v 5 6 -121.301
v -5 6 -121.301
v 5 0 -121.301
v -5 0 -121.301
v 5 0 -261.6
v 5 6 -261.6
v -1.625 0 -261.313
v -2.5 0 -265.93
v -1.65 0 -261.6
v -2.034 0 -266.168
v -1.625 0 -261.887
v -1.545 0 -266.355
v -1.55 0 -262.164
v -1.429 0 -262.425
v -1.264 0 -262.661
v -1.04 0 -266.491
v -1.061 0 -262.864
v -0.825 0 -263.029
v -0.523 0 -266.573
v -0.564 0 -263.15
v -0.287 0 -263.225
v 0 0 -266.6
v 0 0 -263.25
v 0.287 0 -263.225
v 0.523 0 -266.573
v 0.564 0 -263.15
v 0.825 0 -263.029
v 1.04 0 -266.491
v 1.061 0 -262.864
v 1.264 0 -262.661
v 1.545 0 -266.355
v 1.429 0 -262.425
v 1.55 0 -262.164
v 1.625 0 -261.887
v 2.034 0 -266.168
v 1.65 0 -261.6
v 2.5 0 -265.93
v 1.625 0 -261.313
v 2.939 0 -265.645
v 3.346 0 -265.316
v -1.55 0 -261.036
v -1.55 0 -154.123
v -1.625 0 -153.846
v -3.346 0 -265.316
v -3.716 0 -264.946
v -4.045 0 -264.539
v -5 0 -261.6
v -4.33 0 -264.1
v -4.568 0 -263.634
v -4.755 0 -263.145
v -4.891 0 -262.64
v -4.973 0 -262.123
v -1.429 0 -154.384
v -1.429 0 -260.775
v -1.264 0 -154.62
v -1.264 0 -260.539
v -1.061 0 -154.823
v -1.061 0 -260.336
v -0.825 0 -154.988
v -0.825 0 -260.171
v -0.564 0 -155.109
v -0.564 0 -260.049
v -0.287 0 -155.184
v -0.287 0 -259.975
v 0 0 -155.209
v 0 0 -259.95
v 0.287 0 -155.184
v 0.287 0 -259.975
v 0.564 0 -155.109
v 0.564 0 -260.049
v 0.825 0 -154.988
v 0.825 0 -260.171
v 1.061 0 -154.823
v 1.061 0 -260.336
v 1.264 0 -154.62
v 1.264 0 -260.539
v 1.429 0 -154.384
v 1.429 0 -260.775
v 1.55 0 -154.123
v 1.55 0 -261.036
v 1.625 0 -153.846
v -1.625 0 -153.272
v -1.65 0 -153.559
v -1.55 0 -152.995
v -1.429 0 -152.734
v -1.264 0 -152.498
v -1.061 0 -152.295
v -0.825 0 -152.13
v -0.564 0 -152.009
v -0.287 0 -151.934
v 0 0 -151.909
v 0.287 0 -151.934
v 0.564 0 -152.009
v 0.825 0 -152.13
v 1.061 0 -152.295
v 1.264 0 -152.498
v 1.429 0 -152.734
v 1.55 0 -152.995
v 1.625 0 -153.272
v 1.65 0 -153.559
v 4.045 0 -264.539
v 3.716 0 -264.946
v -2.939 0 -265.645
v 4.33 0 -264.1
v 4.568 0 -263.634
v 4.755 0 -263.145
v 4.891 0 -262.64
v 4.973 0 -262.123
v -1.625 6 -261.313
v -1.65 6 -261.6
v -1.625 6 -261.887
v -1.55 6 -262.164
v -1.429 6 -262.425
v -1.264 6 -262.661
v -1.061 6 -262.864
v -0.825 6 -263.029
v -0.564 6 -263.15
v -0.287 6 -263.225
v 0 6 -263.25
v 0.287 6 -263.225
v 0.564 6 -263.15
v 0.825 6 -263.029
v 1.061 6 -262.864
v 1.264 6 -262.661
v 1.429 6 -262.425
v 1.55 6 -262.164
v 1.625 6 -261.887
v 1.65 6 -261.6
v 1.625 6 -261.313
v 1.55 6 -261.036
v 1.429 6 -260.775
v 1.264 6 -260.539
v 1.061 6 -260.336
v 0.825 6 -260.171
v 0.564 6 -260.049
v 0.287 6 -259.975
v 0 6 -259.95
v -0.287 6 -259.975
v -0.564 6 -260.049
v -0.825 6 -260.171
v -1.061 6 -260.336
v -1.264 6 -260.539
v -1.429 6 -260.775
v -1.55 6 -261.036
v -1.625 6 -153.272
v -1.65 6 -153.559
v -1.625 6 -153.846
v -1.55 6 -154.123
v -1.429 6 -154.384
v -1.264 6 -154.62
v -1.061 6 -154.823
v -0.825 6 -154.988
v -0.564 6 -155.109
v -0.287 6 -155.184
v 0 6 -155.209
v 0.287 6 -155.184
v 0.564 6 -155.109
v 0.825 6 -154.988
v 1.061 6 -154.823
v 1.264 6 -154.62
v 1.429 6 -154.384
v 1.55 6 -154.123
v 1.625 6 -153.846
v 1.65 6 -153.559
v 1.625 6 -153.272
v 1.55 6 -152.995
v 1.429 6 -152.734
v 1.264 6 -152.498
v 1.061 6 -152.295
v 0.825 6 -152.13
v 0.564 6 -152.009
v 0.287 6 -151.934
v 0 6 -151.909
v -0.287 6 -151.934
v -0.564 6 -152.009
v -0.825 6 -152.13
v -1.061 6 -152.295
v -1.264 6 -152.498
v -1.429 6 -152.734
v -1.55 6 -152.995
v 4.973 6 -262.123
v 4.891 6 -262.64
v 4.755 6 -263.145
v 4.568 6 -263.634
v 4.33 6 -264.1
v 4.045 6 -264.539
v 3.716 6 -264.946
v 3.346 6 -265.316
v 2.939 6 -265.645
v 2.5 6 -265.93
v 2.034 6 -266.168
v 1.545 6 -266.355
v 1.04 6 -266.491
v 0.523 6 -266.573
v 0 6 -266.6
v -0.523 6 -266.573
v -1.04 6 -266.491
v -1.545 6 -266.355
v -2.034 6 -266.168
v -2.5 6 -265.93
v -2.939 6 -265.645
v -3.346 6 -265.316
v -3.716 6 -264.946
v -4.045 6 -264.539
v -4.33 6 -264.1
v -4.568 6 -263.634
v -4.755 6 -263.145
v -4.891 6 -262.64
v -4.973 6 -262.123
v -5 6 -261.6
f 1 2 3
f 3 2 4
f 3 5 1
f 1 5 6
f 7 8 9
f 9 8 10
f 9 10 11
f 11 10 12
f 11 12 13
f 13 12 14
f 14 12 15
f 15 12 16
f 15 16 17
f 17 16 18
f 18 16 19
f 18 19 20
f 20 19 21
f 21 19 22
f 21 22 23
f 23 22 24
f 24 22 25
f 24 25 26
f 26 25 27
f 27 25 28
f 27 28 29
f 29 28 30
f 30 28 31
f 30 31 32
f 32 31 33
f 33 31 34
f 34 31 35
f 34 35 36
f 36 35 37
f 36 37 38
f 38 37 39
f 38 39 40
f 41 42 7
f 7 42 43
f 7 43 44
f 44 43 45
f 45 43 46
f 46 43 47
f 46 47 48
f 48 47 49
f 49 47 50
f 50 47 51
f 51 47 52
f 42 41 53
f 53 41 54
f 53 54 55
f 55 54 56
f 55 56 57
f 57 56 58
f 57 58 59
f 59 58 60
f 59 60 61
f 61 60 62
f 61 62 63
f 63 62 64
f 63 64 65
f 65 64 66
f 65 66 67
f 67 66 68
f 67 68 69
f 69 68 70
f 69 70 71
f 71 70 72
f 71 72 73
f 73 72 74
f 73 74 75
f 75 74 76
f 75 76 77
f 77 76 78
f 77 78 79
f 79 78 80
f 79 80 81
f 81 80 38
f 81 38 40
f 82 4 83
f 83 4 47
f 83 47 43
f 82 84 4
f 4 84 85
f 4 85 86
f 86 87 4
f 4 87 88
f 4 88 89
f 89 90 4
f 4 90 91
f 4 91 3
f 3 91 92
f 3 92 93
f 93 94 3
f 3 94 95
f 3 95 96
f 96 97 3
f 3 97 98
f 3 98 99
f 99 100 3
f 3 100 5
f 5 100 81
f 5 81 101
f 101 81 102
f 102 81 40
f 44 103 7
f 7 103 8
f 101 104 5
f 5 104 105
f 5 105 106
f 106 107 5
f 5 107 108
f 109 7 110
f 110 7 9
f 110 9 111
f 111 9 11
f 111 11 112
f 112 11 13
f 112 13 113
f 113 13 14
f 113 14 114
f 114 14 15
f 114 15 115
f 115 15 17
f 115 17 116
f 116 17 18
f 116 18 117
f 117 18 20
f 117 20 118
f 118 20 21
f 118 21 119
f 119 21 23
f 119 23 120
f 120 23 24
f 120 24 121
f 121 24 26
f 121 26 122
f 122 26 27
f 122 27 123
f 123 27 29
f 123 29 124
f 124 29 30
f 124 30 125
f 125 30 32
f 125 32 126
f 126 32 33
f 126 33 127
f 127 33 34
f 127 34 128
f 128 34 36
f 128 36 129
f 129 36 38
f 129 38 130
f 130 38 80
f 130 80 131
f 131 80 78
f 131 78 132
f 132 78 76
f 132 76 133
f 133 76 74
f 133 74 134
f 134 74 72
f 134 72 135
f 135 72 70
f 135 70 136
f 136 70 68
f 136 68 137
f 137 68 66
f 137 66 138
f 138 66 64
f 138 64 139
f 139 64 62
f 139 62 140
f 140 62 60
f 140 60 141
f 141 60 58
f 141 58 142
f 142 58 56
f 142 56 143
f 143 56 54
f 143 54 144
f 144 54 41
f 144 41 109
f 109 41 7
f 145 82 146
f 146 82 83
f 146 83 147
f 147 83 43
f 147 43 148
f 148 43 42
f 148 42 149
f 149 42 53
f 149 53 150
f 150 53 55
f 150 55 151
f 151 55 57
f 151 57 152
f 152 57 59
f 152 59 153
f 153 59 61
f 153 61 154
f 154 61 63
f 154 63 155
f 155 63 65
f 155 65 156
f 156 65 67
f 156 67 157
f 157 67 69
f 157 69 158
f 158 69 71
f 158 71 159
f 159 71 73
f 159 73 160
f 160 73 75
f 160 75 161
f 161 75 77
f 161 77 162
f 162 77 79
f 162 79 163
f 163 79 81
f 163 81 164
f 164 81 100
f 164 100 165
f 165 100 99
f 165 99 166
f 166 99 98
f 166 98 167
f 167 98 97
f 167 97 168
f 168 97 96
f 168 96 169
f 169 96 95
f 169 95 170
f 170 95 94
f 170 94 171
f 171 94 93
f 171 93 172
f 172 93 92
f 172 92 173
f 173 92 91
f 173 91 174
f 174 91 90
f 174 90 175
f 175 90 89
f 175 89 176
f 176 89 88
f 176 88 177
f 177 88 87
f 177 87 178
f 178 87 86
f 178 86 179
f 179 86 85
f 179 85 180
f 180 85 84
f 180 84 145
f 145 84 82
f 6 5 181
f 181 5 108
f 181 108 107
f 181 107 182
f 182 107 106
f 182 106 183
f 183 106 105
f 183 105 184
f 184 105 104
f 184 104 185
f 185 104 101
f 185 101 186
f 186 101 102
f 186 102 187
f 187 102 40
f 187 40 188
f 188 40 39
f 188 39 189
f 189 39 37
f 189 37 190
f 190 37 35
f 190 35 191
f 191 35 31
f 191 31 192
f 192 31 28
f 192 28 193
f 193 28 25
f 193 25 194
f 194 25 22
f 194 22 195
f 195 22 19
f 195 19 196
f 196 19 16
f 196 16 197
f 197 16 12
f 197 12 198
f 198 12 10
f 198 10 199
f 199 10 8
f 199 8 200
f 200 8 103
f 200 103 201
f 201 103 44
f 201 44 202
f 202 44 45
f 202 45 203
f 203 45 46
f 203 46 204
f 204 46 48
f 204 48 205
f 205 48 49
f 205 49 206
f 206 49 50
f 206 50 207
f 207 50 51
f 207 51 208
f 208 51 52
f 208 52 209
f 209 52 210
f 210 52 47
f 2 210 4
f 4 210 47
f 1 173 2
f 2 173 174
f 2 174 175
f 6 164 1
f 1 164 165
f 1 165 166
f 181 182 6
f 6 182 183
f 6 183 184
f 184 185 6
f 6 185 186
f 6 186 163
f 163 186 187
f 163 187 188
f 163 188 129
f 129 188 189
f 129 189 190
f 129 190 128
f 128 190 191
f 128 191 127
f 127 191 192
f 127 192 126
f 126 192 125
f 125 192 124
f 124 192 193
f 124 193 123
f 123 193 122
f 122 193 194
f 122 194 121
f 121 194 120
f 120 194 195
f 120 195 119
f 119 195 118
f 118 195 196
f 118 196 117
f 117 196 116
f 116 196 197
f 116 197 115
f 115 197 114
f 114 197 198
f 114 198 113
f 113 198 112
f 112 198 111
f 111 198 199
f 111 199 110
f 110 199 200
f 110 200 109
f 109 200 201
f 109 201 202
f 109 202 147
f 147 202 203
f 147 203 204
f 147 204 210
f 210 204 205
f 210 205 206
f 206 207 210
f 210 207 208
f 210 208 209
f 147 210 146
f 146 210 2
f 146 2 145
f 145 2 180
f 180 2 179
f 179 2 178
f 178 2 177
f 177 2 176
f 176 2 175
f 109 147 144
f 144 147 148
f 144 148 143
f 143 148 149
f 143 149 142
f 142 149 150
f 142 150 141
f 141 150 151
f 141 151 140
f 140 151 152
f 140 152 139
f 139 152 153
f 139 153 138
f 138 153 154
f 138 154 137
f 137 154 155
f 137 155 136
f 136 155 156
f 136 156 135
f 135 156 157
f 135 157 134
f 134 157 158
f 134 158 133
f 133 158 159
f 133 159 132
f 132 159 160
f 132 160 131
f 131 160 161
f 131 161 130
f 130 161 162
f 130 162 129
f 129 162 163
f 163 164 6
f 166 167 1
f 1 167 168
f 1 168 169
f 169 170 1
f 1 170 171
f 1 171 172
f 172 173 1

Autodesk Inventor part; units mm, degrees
ref_plane "YZ Plane" through (0, 0, 0) normal (1, 0, 0) x (0, 1, 0)
ref_plane "XZ Plane" through (0, 0, 0) normal (0, 1, 0) x (-1, 0, 0)
ref_plane "XY Plane" through (0, 0, 0) normal (0, 0, 1) x (1, 0, 0)
sketch "Sketch1" plane through (0, 0, 0) normal (0, 1, 0) x (-1, 0, 0)
  line L0 (0, 0) -> (0, -261.6) construction
  line L1 (5, 0) -> (5, -261.6)
  line L2 (-5, -261.6) -> (-5, 0)
  arc A0 (5, 0) -> (-5, 0) centre (0, 0) ccw
  arc A1 (-5, -261.6) -> (5, -261.6) centre (0, -261.6) ccw
  circle A2 centre (0, 0) radius 1.65
  circle A3 centre (0, -261.6) radius 1.65
  circle A4 centre (0, -153.559) radius 1.65
  point P0 (0, -130.8)
  dimension "d0" = 3.3
  dimension "d1" = 3.3
  dimension "d2" = 10
  dimension "d3" = 261.6
  dimension "d4" = 3.3
  dimension "d5" = 153.559
extrude "Extrusion1" add sketch "Sketch1" along normal blind 6
sketch "Sketch3" plane through (0, 6, 0) normal (0, 1, 0) x (1, 0, 0)
  line L0 (-22.4574, 275.926) -> (26.2563, 275.926)
  line L1 (26.2563, 275.926) -> (26.2563, 121.3008)
  line L2 (26.2563, 121.3008) -> (-22.4574, 121.3008)
  line L3 (-22.4574, 121.3008) -> (-22.4574, 275.926)
  line L4 (-103.4002, 357.0257) -> (155.5228, 357.0257)
  line L5 (155.5228, 357.0257) -> (155.5228, -67.8162)
  line L6 (155.5228, -67.8162) -> (-103.4002, -67.8162)
  line L7 (-103.4002, -67.8162) -> (-103.4002, 357.0257)
  point P0 (0, 0)
extrude "Extrusion2" cut sketch "Sketch3" against normal blind 100
properties part number "Part_2_p2"
